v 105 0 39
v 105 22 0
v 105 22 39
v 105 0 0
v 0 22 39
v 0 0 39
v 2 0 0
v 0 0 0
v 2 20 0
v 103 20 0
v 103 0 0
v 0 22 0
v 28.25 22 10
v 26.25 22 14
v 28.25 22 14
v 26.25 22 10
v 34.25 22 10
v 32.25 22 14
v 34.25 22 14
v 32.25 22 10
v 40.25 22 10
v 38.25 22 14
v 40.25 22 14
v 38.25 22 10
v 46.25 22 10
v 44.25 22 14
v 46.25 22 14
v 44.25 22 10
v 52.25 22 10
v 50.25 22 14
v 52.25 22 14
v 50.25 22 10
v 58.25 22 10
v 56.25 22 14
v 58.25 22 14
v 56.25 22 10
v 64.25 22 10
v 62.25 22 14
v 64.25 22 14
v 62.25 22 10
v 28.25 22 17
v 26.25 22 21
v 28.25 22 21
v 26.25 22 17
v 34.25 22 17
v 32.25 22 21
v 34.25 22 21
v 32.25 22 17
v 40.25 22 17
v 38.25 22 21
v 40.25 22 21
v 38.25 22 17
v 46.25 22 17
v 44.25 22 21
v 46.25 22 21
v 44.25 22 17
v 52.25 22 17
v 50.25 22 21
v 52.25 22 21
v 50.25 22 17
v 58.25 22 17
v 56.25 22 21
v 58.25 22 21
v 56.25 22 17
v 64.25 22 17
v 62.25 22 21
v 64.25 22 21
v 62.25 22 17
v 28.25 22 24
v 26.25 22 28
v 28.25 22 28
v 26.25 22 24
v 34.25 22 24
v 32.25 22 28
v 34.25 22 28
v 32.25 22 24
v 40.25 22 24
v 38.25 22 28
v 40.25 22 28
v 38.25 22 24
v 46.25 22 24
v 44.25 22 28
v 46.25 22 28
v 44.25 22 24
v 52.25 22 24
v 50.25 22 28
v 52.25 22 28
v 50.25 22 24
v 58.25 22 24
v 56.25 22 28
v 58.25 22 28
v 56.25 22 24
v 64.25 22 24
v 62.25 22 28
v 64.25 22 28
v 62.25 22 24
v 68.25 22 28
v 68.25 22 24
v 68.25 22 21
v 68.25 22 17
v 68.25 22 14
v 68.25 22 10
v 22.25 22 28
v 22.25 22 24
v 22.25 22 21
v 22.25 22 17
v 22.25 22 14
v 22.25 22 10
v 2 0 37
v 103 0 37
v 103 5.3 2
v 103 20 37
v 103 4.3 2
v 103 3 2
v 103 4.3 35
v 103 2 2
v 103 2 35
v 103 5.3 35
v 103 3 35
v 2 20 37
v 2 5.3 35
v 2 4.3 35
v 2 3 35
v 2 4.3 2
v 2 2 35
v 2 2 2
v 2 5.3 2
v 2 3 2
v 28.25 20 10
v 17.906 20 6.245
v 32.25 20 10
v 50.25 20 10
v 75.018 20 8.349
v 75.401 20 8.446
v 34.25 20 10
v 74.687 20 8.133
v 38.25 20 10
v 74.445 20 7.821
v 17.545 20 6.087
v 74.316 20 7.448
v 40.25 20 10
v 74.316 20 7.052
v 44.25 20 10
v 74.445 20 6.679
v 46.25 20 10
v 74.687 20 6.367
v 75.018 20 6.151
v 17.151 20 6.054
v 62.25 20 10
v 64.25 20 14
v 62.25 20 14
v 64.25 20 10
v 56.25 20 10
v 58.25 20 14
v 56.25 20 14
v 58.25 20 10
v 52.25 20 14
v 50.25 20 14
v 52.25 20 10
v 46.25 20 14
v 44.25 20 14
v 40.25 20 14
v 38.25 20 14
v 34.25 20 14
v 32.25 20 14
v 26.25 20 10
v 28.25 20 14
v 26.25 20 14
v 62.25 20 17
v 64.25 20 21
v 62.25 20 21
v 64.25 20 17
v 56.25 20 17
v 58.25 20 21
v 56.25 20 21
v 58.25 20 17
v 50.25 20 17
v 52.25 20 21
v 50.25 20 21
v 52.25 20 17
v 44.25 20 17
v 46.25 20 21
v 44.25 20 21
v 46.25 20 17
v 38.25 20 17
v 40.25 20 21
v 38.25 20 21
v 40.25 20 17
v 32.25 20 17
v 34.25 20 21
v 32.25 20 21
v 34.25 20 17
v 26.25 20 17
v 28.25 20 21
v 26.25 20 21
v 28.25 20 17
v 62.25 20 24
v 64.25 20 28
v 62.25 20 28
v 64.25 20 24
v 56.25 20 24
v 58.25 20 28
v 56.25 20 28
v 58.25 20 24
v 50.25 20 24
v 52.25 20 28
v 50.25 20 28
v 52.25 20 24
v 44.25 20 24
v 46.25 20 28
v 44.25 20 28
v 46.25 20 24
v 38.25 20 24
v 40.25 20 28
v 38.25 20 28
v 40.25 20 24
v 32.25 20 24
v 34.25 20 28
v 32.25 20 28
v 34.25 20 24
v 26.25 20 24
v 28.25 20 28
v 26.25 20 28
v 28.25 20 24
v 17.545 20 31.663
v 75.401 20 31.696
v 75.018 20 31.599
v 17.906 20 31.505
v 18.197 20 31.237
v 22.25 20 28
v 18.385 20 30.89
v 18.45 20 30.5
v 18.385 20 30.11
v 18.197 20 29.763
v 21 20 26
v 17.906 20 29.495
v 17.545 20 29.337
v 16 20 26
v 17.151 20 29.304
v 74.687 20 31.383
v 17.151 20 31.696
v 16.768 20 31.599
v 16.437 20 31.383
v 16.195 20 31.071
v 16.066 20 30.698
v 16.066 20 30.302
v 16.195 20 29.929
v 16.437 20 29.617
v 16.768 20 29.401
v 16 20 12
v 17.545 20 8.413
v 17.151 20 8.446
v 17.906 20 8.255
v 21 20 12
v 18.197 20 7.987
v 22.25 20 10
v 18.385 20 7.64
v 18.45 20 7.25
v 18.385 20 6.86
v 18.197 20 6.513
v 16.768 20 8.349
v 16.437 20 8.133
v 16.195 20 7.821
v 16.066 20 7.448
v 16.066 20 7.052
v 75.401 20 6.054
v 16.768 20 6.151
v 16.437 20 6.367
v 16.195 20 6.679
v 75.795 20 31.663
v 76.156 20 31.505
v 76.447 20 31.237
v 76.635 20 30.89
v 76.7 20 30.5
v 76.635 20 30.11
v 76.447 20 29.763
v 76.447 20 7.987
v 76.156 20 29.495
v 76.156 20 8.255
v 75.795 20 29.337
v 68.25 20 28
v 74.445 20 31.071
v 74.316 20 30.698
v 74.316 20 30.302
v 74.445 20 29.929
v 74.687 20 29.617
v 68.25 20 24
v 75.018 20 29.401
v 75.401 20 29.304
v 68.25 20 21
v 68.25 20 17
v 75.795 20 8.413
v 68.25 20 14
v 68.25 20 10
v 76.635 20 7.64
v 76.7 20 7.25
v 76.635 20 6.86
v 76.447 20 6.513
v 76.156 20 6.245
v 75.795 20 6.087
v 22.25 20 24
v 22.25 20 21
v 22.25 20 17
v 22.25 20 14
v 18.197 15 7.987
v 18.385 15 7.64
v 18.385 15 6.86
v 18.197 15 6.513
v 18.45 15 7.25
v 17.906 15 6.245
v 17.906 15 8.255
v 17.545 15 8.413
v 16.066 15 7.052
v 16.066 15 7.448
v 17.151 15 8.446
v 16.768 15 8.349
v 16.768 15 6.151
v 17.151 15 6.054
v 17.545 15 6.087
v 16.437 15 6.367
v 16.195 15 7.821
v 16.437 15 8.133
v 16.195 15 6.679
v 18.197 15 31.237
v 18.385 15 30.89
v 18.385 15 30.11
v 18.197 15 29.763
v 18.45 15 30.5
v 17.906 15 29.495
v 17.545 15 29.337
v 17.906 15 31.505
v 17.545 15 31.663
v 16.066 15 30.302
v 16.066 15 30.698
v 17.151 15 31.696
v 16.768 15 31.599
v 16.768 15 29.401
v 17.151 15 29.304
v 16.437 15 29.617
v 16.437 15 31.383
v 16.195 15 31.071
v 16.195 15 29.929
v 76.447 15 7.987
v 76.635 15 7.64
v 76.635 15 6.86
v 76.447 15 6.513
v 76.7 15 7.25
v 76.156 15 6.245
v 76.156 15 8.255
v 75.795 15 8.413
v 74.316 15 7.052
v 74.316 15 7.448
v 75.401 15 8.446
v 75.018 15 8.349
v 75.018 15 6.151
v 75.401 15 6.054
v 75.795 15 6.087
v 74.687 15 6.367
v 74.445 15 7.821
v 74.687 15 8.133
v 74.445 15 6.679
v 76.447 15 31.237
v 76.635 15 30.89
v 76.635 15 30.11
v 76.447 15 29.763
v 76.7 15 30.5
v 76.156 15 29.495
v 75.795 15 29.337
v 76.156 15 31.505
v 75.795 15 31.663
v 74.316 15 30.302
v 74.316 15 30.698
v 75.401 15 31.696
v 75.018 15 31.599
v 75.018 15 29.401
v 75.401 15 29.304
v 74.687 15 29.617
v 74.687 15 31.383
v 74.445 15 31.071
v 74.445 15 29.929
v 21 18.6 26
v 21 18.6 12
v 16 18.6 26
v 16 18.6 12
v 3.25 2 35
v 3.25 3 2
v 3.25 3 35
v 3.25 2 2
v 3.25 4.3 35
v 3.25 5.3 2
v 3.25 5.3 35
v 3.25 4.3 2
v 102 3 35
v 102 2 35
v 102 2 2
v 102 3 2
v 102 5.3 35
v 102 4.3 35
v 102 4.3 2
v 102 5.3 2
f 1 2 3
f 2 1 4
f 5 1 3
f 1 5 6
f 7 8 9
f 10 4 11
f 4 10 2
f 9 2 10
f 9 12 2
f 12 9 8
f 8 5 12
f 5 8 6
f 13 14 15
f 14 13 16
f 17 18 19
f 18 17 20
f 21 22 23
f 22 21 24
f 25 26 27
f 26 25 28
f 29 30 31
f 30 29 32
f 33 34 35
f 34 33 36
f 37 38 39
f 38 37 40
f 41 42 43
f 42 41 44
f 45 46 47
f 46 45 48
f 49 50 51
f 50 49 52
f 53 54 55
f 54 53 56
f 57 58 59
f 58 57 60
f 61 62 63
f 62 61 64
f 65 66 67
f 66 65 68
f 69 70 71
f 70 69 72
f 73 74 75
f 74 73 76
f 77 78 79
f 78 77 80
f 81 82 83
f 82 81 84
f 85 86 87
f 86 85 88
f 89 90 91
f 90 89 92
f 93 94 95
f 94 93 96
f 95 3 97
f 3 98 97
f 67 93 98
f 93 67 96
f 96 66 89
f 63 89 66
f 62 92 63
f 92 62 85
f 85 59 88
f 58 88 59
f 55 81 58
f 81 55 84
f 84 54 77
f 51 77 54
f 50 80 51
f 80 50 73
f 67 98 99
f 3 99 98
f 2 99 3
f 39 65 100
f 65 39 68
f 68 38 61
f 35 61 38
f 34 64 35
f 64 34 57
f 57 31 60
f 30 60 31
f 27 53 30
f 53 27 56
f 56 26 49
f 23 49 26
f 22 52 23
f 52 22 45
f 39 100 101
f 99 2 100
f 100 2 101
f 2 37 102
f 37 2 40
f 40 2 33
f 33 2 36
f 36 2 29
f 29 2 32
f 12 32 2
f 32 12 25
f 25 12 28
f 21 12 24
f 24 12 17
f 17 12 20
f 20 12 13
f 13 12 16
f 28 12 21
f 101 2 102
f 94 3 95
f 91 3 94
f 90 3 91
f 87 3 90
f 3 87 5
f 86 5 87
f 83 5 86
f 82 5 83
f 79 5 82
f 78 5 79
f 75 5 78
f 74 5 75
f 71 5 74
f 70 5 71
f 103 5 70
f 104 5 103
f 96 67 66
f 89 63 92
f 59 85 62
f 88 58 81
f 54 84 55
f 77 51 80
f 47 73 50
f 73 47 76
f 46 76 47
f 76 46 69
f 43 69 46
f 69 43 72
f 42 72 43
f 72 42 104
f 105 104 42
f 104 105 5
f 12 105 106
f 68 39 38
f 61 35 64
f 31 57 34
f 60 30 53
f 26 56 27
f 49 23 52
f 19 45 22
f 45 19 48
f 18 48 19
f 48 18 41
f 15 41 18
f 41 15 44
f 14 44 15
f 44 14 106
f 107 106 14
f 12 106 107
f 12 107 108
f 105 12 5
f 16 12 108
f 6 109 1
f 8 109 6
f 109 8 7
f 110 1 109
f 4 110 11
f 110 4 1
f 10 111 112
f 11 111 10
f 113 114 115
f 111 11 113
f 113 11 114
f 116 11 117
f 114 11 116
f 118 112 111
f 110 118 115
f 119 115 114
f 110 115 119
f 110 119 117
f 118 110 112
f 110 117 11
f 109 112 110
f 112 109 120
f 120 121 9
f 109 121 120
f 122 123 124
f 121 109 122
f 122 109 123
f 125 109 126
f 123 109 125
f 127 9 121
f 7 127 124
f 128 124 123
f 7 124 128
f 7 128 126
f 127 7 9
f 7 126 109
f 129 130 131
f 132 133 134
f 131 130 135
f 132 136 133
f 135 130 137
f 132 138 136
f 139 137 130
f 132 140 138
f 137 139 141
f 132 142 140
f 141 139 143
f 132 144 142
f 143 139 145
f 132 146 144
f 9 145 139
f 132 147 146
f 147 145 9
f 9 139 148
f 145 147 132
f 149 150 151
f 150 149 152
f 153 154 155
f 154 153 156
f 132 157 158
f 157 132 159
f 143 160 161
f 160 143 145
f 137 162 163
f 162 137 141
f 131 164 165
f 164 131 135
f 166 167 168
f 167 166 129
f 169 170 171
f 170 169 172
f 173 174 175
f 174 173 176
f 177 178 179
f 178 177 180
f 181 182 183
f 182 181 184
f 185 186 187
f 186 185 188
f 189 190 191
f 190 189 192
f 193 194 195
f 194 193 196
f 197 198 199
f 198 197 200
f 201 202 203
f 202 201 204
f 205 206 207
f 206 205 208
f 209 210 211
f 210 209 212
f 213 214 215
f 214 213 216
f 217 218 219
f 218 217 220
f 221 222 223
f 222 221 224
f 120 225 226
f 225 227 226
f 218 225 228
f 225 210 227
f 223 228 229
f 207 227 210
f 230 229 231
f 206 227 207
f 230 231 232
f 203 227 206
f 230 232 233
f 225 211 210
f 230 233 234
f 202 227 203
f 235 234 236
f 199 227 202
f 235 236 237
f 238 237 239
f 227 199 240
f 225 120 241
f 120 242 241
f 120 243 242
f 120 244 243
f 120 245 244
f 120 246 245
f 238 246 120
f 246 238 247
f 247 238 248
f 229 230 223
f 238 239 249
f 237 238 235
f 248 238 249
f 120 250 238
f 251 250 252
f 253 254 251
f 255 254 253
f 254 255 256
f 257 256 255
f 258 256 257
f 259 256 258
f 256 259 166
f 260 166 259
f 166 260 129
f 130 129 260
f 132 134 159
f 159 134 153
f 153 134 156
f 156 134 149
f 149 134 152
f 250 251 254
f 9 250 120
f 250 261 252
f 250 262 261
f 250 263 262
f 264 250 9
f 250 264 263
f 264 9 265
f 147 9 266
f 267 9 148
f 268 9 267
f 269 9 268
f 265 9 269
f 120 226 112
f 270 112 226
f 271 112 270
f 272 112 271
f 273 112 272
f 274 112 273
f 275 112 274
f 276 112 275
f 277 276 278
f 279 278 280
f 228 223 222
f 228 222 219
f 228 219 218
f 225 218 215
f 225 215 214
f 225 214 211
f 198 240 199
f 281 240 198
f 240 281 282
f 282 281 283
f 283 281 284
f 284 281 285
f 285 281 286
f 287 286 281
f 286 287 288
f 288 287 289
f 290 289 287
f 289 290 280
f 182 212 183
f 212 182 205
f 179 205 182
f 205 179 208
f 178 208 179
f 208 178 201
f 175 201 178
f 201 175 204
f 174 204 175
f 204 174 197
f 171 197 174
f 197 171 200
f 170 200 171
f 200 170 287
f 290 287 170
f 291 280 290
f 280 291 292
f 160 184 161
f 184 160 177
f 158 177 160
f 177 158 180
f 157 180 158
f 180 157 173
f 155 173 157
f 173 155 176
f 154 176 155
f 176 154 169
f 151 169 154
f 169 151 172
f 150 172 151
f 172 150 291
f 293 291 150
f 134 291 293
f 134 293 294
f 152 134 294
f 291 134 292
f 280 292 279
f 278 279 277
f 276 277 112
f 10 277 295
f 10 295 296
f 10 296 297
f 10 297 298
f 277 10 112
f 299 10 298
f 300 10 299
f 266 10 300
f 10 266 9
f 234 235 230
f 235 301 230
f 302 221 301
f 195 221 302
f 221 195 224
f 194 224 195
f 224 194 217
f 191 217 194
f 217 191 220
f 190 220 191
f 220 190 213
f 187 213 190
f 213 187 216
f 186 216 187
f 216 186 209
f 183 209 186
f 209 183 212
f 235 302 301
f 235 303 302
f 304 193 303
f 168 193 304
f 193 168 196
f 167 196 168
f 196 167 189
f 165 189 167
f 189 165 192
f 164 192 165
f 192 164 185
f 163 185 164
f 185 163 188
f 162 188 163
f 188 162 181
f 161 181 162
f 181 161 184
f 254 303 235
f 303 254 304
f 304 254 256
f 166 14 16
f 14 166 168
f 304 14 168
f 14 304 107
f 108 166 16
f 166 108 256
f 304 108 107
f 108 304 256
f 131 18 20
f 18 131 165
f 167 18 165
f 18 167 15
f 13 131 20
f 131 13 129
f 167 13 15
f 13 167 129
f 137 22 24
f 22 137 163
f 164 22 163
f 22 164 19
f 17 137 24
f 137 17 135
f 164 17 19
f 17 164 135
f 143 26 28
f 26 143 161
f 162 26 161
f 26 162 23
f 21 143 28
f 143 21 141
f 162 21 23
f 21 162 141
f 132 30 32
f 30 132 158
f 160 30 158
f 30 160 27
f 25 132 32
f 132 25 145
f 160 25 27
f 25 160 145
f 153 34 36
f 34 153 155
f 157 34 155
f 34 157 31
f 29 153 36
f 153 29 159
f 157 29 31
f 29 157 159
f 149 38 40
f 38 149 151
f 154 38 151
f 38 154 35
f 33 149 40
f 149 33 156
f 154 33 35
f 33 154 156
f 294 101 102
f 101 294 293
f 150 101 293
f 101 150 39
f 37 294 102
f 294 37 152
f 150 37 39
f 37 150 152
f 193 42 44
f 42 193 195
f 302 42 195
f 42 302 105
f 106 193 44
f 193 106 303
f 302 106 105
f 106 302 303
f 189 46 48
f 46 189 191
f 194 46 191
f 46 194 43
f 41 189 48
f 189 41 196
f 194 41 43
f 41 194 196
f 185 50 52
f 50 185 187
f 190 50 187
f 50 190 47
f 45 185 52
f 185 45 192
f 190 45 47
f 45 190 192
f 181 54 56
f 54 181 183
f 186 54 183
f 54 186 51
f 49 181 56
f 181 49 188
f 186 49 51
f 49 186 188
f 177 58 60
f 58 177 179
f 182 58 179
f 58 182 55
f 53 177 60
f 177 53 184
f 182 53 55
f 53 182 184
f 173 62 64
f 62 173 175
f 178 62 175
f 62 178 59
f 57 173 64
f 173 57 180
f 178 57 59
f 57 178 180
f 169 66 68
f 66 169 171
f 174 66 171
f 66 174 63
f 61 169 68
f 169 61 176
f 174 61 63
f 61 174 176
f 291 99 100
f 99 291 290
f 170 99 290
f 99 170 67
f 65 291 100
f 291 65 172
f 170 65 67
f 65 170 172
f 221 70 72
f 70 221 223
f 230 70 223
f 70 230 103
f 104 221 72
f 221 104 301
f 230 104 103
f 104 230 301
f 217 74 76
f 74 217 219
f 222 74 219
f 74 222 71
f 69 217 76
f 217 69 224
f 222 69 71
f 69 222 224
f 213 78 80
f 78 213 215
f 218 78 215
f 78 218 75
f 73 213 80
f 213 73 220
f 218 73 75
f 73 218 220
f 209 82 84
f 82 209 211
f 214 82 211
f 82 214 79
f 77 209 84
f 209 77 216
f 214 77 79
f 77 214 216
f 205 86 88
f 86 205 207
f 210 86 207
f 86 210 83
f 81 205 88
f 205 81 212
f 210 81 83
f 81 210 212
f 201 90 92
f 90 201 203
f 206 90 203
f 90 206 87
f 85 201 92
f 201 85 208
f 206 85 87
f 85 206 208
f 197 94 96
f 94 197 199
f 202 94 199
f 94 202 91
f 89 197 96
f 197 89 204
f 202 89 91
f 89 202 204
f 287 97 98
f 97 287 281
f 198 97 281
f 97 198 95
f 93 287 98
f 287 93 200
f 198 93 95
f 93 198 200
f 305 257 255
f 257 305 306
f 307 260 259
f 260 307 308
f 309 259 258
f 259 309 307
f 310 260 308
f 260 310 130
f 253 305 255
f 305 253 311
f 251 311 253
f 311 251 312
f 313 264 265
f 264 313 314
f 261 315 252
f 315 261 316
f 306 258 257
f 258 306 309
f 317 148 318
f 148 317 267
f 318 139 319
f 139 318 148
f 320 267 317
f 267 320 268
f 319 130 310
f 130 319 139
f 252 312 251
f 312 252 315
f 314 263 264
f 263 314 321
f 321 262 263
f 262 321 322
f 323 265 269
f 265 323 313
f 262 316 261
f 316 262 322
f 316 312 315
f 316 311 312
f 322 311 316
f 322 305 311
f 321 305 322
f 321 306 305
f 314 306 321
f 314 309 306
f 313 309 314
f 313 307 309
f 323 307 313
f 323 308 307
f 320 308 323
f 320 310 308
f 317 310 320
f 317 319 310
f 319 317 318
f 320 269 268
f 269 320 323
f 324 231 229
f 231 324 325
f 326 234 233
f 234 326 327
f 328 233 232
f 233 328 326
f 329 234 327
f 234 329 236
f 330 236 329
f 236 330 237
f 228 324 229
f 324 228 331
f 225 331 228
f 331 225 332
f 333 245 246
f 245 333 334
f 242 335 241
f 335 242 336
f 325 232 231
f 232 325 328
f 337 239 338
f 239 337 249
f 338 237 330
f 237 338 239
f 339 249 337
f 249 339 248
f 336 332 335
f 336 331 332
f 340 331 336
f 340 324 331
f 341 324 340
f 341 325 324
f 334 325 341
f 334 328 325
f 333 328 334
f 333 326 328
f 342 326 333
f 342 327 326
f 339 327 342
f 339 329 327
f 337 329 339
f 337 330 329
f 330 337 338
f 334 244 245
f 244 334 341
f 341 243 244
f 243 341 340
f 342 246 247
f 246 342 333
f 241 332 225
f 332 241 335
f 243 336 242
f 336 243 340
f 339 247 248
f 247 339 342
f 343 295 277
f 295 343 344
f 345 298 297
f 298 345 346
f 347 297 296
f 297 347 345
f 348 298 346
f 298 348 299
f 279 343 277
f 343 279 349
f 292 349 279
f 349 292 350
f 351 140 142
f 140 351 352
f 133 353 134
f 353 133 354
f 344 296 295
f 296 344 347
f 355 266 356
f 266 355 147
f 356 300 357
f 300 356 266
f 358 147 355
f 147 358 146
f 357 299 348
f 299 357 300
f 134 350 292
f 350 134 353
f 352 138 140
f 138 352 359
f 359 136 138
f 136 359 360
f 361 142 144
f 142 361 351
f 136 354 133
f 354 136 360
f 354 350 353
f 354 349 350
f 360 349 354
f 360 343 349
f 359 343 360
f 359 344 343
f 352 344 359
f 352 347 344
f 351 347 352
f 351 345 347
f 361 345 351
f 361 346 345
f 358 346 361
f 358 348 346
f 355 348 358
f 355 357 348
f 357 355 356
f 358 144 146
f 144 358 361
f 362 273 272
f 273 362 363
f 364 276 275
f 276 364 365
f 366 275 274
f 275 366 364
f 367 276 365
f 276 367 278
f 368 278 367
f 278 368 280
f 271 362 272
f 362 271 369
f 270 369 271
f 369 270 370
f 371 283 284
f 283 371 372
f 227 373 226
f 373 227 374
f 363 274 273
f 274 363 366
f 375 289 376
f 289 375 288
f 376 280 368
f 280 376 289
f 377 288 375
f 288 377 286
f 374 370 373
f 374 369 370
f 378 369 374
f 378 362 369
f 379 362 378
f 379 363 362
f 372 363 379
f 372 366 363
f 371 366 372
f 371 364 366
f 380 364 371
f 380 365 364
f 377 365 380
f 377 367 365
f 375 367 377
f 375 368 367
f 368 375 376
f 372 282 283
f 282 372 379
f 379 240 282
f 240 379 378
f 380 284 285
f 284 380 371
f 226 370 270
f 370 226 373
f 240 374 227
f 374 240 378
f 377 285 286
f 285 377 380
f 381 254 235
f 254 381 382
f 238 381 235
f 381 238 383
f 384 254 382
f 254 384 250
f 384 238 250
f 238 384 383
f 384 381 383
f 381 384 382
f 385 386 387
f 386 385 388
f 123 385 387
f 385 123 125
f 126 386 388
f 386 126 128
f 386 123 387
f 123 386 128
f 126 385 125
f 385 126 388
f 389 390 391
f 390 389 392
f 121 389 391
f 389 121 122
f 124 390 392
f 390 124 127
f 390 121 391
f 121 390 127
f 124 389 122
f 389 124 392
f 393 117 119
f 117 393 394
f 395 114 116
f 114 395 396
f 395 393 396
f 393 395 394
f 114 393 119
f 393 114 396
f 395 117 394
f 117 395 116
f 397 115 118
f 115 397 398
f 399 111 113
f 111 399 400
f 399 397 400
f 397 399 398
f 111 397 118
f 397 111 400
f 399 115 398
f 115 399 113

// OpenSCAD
$fa = 1;
$fs = 0.4;

difference(){
    cube([105,22,39]);
    translate([2,0,0])
        cube([101,20,37]);
    translate([22.25,20,10])
    cube([4,2,4]);
    translate([28.25,20,10])
    cube([4,2,4]);
    translate([34.25,20,10])
    cube([4,2,4]);
    translate([40.25,20,10])
    cube([4,2,4]);
    translate([46.25,20,10])
    cube([4,2,4]);
    translate([52.25,20,10])
    cube([4,2,4]);
    translate([58.25,20,10])
    cube([4,2,4]);
    translate([64.25,20,10])
    cube([4,2,4]);

    translate([22.25,20,17])
    cube([4,2,4]);
    translate([28.25,20,17])
    cube([4,2,4]);
    translate([34.25,20,17])
    cube([4,2,4]);
    translate([40.25,20,17])
    cube([4,2,4]);
    translate([46.25,20,17])
    cube([4,2,4]);
    translate([52.25,20,17])
    cube([4,2,4]);
    translate([58.25,20,17])
    cube([4,2,4]);
    translate([64.25,20,17])
    cube([4,2,4]);

    translate([22.25,20,24])
    cube([4,2,4]);
    translate([28.25,20,24])
    cube([4,2,4]);
    translate([34.25,20,24])
    cube([4,2,4]);
    translate([40.25,20,24])
    cube([4,2,4]);
    translate([46.25,20,24])
    cube([4,2,4]);
    translate([52.25,20,24])
    cube([4,2,4]);
    translate([58.25,20,24])
    cube([4,2,4]);
    translate([64.25,20,24])
    cube([4,2,4]);
}

rotate([270,0,0])
    translate([17.25,-7.25,15])
        cylinder(h=6,r=1.20);
rotate([270,0,0])
    translate([17.25,-30.5,15])
        cylinder(h=6,r=1.20);
rotate([270,0,0])
    translate([75.50,-7.25,15])
        cylinder(h=6,r=1.20);
rotate([270,0,0])
    translate([75.50,-30.5,15])
        cylinder(h=6,r=1.20);

translate([16,18.6,12])
cube([5,2.4,14]);

translate([2,2,2])
cube([1.25,1,33]);
translate([2,4.3,2])
cube([1.25,1,33]);

translate([102,2,2])
cube([1.25,1,33]);
translate([102,4.3,2])
cube([1.25,1,33]);
